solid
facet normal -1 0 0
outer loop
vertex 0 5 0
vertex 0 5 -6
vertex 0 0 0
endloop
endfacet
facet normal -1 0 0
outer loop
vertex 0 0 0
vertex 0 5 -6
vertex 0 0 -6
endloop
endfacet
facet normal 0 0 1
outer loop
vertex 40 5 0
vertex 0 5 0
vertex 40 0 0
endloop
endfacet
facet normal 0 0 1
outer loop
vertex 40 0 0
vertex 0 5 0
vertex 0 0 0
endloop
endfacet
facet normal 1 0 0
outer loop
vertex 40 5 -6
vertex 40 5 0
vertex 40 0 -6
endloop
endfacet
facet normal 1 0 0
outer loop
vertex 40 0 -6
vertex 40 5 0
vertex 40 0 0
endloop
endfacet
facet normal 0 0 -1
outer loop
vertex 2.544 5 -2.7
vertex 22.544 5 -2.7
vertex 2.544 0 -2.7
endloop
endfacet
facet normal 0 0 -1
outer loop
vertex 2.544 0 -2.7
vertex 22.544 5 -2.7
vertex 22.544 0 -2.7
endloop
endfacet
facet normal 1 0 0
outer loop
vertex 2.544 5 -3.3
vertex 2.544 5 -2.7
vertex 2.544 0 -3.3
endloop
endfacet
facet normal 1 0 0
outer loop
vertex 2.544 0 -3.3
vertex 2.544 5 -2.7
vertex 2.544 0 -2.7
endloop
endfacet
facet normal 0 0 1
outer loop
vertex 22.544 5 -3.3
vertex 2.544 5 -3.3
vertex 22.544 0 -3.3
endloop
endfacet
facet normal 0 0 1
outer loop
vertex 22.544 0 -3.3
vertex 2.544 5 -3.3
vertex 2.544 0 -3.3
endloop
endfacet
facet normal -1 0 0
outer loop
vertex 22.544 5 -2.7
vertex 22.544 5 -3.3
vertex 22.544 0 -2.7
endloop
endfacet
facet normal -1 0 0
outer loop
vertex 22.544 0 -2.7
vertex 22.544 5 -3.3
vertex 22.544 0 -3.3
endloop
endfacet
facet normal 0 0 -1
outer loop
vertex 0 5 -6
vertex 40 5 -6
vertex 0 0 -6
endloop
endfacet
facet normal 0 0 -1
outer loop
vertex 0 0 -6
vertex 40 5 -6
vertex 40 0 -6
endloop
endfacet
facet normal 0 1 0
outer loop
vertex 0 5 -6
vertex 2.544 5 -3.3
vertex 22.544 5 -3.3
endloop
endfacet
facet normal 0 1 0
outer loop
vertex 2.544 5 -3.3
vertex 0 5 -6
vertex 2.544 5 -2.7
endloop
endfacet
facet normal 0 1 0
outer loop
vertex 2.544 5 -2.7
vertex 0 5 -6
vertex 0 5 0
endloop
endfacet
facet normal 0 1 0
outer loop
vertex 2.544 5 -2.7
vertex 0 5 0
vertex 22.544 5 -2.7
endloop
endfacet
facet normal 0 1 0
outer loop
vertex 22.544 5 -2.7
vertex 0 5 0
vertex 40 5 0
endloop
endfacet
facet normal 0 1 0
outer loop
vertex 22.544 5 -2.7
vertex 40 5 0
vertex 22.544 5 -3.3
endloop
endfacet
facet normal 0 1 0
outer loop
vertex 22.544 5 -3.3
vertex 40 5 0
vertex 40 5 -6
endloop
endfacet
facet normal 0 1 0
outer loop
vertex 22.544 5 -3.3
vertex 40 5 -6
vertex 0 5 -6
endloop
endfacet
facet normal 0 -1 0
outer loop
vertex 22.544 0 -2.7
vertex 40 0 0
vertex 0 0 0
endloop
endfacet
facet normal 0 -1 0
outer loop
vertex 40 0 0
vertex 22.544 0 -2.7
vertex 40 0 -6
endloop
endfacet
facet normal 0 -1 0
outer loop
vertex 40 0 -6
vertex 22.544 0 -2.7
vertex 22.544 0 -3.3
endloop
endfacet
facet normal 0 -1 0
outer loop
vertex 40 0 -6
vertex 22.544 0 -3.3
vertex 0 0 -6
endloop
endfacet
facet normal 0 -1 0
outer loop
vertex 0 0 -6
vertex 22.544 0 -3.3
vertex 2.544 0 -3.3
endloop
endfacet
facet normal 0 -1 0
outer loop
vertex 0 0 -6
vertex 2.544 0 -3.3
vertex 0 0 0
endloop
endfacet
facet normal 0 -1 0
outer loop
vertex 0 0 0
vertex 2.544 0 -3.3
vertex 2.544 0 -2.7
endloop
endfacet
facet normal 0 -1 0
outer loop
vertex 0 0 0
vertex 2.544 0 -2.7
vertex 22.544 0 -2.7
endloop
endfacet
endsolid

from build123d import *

# Parameters (mm, degrees)
EXTRUDE_1_DEPTH = 5


with BuildPart() as part:
    # 草图1 → 凸台-拉伸1 (new body)
    with BuildSketch(Plane(origin=(0, 0, 0), x_dir=(1, 0, 0), z_dir=(0, 1, 0))):
        Polygon((0, 6), (0, 3), (2.544321256, 3), (2.544321256, 3.3), (22.544321256, 3.3), (22.544321256, 3), (40, 3), (40, 6), align=None)
        Polygon((2.544321256, 3), (0, 3), (0, 0), (40, 0), (40, 3), (22.544321256, 3), (22.544321256, 2.7), (2.544321256, 2.7), align=None)
    extrude(amount=EXTRUDE_1_DEPTH)


solid = part.part
